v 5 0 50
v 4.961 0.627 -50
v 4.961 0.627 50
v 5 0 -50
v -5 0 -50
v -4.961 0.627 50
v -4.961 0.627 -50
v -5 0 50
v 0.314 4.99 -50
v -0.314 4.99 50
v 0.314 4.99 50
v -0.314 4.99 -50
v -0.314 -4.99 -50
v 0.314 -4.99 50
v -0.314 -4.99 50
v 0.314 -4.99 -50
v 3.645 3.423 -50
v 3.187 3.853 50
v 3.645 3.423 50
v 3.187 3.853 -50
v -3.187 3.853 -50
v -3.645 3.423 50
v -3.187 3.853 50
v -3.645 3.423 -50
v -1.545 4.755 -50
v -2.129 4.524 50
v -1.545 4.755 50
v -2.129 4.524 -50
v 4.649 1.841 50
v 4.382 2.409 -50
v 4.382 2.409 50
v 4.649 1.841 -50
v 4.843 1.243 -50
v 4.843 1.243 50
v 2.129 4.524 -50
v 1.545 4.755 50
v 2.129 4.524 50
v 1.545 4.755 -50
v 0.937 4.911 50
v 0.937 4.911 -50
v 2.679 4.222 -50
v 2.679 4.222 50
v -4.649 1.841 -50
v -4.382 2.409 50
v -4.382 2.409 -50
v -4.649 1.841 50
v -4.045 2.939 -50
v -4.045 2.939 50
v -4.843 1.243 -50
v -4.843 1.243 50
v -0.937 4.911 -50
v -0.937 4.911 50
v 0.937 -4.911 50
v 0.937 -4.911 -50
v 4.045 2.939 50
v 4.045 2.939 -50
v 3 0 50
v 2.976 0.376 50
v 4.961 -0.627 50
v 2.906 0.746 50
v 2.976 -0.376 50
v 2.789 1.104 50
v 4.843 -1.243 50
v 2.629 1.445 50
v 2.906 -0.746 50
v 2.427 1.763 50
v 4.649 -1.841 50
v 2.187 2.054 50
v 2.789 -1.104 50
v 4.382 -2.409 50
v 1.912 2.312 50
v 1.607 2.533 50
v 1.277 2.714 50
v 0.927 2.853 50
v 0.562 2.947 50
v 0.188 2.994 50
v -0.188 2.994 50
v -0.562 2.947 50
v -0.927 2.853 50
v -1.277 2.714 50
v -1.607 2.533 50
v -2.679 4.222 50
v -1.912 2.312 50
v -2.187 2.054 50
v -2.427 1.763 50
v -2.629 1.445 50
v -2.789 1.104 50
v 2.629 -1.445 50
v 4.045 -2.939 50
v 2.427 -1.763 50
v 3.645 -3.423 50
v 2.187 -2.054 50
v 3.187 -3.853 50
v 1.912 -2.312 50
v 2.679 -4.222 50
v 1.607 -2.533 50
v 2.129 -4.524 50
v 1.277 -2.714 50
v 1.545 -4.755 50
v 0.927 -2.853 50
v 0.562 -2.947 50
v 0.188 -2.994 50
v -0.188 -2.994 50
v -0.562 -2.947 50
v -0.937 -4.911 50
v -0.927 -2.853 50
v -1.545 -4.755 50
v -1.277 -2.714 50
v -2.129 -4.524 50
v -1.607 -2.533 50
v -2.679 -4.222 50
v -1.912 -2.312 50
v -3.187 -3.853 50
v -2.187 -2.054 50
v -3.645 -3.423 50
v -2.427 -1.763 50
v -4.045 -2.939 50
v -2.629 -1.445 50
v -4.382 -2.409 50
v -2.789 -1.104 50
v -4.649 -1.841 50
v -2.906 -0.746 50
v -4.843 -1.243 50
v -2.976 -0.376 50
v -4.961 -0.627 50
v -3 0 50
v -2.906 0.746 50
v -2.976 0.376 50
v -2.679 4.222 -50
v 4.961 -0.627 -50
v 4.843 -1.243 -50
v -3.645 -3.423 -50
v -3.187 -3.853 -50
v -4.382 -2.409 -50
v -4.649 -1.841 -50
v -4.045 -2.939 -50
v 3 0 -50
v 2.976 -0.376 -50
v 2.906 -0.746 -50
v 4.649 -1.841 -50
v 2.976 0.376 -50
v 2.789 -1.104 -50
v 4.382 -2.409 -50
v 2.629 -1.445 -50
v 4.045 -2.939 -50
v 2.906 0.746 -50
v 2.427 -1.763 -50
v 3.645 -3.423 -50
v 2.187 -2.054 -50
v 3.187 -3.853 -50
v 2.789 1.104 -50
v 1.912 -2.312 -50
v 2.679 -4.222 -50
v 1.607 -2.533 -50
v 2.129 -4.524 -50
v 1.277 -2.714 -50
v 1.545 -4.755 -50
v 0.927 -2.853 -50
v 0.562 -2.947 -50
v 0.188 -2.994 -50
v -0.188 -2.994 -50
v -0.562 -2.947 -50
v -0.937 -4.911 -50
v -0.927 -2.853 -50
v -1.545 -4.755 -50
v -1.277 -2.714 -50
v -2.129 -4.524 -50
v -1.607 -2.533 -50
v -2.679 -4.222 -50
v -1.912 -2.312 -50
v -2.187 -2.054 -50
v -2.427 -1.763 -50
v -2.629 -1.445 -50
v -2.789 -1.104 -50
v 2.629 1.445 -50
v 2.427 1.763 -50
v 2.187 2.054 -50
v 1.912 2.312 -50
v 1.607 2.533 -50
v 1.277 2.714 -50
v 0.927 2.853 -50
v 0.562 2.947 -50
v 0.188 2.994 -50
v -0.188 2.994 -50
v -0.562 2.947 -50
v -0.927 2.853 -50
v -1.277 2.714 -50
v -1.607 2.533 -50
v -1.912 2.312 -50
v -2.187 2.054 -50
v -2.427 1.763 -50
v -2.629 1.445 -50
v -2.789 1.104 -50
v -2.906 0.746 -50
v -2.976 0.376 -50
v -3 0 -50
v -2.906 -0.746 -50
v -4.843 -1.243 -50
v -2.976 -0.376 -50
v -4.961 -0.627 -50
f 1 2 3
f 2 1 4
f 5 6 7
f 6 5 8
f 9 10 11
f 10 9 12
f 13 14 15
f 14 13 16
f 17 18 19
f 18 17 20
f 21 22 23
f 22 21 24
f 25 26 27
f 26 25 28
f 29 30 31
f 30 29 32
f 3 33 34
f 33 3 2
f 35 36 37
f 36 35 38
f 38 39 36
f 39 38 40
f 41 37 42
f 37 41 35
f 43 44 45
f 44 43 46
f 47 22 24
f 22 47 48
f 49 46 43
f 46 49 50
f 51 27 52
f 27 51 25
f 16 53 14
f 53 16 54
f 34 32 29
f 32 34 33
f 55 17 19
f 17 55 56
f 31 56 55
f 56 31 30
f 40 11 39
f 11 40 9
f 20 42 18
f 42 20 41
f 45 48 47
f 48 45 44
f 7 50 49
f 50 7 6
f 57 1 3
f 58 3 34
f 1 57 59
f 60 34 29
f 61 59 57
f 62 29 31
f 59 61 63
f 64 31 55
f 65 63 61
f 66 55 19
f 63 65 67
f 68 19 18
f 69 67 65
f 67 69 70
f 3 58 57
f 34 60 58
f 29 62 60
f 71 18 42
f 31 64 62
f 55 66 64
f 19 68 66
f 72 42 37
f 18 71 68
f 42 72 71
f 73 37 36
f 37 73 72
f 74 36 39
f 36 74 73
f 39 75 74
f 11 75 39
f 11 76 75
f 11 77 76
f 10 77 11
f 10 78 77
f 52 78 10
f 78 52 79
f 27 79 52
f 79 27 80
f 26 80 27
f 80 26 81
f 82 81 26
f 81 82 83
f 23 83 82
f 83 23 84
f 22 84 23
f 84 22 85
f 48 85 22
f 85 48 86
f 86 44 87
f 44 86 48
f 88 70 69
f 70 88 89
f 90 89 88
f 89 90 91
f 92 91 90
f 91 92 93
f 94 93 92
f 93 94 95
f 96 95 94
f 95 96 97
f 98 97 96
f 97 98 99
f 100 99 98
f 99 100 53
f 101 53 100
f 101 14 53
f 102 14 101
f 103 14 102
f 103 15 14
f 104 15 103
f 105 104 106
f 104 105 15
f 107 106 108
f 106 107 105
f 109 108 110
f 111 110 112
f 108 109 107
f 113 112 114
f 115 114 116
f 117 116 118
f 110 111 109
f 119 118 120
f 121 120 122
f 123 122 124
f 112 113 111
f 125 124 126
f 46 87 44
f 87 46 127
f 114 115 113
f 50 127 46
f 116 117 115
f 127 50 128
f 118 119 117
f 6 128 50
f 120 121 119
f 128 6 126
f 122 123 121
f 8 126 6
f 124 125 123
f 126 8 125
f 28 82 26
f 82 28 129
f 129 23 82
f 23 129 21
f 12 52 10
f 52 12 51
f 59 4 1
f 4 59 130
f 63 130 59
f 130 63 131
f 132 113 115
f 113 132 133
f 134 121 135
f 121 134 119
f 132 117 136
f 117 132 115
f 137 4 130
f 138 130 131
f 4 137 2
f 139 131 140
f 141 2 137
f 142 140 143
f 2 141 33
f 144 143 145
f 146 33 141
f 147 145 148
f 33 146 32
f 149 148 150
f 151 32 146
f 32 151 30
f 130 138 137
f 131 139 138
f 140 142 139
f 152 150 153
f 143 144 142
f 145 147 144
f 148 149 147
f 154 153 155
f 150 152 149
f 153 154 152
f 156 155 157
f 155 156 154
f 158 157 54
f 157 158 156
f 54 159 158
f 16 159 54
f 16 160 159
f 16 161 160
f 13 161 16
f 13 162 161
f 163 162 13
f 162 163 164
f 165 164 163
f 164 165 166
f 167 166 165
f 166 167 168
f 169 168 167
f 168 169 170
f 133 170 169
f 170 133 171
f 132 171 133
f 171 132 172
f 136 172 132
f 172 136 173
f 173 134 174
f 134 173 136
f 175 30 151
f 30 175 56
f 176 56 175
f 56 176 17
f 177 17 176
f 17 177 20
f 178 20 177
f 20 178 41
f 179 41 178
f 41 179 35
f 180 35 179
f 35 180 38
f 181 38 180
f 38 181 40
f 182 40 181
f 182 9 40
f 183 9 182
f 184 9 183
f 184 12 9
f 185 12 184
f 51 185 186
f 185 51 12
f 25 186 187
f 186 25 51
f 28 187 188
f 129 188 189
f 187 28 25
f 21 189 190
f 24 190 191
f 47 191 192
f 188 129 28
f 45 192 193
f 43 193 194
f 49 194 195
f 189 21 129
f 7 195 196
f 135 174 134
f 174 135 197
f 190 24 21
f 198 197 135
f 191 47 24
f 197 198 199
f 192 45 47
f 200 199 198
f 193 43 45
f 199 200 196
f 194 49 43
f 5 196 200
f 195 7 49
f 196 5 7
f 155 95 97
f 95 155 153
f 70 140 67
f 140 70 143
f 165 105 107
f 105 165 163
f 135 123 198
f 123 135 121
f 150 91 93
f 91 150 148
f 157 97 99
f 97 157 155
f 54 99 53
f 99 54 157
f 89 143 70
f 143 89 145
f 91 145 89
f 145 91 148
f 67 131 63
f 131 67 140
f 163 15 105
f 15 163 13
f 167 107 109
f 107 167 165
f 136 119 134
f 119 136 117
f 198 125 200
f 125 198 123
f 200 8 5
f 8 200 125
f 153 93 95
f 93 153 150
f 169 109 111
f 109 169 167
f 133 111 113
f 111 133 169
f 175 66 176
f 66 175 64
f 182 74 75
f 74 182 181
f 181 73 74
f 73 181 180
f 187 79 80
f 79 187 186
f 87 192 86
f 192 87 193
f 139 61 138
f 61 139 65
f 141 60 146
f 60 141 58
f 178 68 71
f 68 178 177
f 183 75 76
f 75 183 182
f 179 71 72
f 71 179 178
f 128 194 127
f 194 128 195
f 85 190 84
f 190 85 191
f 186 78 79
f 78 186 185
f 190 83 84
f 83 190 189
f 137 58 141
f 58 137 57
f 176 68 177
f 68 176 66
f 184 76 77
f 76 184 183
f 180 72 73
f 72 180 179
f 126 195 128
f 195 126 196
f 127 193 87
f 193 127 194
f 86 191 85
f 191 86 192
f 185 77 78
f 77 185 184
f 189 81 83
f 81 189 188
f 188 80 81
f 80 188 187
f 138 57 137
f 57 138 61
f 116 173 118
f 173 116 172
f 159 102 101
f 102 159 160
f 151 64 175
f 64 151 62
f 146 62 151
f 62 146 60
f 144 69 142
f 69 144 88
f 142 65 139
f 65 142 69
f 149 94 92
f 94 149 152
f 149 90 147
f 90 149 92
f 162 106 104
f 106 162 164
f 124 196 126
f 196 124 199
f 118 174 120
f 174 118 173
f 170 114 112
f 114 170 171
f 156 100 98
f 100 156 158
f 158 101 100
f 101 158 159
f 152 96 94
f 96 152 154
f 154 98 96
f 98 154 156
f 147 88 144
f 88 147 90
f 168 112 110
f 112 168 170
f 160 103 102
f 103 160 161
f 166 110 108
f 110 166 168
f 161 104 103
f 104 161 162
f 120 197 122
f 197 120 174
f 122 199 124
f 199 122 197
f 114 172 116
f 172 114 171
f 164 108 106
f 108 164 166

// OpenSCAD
$fn = 50;


difference() {
	union() {
		translate(v = [0, 0, -50.0000000000]) {
			cylinder(h = 100, r = 5.0000000000);
		}
	}
	union() {
		translate(v = [0, 0, -100.0000000000]) {
			cylinder(h = 200, r = 3);
		}
	}
}
